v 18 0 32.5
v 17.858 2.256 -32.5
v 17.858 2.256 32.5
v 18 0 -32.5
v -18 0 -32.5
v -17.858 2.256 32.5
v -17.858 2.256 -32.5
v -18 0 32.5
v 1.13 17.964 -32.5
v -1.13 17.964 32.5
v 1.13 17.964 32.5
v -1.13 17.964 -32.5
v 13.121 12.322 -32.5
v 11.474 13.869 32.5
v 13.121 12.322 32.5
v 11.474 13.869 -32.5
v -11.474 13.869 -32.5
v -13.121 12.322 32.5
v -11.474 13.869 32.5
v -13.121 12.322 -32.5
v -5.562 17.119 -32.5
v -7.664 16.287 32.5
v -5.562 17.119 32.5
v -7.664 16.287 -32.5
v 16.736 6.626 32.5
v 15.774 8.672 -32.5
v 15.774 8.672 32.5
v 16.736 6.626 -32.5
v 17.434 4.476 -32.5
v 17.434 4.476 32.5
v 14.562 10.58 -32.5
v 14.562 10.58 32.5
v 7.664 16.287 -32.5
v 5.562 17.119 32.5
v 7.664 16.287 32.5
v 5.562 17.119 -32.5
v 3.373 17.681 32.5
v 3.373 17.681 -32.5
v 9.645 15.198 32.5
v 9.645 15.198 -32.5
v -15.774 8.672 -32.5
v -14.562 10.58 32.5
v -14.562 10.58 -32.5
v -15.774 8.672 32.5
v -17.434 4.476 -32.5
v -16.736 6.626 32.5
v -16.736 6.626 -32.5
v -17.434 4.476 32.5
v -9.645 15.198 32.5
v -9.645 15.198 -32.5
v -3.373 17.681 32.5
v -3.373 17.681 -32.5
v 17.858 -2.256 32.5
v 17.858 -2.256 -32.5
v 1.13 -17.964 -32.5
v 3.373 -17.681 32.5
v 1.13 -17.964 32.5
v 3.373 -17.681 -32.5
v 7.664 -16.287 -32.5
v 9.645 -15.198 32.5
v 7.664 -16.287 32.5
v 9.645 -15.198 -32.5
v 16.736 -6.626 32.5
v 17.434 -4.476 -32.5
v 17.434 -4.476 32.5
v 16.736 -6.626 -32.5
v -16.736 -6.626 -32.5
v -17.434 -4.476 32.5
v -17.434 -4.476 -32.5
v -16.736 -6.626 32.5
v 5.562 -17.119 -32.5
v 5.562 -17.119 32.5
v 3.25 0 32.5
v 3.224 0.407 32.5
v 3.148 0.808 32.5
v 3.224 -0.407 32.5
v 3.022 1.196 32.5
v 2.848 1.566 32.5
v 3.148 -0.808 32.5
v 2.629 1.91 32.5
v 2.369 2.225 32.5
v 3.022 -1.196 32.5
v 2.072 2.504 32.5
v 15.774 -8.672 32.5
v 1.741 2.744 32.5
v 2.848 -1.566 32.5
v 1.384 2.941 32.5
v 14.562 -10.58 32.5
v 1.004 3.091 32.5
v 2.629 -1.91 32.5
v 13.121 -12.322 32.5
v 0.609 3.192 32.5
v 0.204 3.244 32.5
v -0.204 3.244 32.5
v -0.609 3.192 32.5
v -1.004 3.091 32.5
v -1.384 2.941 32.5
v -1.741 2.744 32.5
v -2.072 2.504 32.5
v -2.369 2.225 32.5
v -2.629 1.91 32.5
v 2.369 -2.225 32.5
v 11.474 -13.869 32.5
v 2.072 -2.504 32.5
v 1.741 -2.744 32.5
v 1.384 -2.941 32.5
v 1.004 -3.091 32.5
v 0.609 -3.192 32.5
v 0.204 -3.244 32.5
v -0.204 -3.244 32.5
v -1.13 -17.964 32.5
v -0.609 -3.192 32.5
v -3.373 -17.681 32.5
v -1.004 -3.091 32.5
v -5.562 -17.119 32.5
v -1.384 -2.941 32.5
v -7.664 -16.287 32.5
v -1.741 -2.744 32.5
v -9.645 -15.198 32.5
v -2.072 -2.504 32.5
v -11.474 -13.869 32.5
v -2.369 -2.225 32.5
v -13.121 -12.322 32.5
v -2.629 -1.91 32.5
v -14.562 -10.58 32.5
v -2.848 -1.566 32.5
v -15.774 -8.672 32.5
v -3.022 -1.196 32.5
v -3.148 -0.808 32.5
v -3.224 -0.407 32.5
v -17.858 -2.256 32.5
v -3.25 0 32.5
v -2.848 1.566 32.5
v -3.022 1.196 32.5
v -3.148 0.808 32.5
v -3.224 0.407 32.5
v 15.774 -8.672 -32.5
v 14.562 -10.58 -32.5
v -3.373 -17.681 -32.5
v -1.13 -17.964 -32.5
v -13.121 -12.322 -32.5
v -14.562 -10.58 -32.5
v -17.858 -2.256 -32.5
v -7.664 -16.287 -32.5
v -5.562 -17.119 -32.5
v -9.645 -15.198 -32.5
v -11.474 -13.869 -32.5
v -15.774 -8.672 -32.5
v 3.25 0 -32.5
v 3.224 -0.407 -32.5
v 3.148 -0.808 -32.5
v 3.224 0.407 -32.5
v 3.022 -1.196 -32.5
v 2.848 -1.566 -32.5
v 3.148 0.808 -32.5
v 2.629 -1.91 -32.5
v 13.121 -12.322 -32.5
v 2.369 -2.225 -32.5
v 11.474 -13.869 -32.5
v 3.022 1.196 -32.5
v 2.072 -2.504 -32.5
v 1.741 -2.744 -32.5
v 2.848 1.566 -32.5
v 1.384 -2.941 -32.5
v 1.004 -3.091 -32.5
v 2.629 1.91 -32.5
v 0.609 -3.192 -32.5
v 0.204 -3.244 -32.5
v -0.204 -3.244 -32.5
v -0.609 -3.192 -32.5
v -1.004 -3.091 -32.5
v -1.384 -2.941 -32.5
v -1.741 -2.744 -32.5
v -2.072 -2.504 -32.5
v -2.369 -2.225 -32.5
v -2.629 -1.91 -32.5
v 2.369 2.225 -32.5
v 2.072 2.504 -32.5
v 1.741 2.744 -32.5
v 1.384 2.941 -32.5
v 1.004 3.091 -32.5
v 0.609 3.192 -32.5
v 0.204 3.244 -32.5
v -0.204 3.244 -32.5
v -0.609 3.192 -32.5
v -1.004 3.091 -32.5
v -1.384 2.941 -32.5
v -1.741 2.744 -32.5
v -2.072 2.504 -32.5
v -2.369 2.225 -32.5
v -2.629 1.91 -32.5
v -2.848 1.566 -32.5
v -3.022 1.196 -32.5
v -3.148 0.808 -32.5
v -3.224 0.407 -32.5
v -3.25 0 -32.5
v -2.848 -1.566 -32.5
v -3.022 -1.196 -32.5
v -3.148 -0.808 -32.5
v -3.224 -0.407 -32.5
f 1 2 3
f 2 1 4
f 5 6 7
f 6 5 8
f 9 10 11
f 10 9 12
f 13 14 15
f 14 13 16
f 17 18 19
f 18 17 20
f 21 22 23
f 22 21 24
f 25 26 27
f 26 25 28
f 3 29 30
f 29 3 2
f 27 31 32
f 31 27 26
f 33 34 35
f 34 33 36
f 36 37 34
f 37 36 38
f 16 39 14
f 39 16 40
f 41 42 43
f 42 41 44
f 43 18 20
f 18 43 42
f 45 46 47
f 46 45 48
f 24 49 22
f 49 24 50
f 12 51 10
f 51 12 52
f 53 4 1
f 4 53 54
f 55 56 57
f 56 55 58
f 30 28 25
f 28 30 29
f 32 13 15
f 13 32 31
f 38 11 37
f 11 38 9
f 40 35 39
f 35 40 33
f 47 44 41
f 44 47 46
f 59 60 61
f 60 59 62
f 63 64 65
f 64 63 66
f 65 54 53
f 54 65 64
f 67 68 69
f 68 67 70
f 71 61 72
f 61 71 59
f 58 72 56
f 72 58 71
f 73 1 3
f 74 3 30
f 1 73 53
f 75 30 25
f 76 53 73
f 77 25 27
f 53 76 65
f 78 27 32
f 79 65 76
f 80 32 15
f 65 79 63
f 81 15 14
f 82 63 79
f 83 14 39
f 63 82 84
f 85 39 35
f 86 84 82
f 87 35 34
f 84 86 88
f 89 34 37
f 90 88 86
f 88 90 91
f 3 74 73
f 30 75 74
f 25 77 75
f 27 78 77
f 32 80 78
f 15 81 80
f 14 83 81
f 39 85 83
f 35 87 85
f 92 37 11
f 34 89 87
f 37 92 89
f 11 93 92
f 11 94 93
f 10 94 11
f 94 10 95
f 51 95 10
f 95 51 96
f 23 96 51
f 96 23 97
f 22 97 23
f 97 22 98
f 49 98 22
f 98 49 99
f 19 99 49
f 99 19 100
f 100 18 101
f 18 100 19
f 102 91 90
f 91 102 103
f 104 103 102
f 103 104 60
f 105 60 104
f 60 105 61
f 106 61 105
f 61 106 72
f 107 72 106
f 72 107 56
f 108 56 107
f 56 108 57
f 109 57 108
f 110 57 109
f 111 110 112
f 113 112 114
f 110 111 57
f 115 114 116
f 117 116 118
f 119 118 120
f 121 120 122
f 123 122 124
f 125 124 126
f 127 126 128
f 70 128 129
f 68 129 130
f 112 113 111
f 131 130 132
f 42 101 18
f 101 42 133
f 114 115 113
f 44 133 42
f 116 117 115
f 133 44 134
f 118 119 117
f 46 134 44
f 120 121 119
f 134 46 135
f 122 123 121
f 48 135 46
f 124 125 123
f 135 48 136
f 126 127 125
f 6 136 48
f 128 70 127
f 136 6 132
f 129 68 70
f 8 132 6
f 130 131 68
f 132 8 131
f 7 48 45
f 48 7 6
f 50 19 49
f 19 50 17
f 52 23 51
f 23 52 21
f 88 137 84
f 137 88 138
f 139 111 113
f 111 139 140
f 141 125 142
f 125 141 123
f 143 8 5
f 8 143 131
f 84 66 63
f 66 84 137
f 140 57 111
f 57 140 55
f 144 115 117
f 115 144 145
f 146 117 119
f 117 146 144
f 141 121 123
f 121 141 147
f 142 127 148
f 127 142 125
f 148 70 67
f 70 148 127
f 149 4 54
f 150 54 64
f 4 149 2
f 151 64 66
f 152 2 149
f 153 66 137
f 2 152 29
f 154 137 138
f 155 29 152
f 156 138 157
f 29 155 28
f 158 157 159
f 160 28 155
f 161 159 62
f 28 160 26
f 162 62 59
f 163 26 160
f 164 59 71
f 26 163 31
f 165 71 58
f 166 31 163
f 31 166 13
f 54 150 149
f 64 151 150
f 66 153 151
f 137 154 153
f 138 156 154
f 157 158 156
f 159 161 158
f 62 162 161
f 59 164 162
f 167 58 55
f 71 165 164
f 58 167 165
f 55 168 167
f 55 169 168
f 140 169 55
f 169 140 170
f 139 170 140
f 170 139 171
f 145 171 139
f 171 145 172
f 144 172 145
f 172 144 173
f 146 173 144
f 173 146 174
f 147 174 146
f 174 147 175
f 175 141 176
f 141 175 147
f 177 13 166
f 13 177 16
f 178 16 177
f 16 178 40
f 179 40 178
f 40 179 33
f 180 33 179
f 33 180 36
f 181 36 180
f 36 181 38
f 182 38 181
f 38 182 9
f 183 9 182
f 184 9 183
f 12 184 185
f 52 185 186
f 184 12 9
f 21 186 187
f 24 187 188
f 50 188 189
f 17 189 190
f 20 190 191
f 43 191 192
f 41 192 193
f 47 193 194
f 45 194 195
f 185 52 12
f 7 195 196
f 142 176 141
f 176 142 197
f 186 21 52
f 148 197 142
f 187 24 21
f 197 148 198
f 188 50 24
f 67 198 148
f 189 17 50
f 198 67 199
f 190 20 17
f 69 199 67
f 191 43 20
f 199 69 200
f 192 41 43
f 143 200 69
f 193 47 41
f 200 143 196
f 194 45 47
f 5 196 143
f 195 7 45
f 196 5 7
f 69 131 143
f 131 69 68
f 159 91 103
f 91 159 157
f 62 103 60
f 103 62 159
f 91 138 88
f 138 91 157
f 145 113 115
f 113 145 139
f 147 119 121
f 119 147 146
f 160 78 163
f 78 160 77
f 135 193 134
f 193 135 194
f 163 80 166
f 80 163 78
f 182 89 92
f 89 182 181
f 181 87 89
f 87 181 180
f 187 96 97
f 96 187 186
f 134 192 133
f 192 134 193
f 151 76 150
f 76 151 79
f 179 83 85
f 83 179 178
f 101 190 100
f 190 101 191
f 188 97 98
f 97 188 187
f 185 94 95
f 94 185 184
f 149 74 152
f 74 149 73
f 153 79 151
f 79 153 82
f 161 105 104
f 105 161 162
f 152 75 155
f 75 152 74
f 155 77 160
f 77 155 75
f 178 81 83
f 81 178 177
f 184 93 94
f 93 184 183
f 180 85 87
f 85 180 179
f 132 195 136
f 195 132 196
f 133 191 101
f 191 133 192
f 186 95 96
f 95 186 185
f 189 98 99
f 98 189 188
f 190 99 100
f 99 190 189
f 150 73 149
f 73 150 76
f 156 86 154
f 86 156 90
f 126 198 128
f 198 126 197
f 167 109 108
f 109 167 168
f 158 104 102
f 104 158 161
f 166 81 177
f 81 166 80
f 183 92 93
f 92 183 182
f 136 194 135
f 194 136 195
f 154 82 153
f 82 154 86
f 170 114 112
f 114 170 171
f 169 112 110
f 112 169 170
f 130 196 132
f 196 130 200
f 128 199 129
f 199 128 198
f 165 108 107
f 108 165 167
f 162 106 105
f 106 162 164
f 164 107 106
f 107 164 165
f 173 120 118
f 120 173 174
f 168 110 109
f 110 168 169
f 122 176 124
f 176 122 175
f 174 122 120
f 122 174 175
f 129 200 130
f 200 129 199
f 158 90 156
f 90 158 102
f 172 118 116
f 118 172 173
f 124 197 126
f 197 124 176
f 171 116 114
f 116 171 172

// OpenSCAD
$fn = 50;


difference() {
	union() {
		translate(v = [0, 0, -32.5000000000]) {
			cylinder(h = 65, r = 18.0000000000);
		}
	}
	union() {
		translate(v = [0, 0, -100.0000000000]) {
			cylinder(h = 200, r = 3.2500000000);
		}
	}
}
